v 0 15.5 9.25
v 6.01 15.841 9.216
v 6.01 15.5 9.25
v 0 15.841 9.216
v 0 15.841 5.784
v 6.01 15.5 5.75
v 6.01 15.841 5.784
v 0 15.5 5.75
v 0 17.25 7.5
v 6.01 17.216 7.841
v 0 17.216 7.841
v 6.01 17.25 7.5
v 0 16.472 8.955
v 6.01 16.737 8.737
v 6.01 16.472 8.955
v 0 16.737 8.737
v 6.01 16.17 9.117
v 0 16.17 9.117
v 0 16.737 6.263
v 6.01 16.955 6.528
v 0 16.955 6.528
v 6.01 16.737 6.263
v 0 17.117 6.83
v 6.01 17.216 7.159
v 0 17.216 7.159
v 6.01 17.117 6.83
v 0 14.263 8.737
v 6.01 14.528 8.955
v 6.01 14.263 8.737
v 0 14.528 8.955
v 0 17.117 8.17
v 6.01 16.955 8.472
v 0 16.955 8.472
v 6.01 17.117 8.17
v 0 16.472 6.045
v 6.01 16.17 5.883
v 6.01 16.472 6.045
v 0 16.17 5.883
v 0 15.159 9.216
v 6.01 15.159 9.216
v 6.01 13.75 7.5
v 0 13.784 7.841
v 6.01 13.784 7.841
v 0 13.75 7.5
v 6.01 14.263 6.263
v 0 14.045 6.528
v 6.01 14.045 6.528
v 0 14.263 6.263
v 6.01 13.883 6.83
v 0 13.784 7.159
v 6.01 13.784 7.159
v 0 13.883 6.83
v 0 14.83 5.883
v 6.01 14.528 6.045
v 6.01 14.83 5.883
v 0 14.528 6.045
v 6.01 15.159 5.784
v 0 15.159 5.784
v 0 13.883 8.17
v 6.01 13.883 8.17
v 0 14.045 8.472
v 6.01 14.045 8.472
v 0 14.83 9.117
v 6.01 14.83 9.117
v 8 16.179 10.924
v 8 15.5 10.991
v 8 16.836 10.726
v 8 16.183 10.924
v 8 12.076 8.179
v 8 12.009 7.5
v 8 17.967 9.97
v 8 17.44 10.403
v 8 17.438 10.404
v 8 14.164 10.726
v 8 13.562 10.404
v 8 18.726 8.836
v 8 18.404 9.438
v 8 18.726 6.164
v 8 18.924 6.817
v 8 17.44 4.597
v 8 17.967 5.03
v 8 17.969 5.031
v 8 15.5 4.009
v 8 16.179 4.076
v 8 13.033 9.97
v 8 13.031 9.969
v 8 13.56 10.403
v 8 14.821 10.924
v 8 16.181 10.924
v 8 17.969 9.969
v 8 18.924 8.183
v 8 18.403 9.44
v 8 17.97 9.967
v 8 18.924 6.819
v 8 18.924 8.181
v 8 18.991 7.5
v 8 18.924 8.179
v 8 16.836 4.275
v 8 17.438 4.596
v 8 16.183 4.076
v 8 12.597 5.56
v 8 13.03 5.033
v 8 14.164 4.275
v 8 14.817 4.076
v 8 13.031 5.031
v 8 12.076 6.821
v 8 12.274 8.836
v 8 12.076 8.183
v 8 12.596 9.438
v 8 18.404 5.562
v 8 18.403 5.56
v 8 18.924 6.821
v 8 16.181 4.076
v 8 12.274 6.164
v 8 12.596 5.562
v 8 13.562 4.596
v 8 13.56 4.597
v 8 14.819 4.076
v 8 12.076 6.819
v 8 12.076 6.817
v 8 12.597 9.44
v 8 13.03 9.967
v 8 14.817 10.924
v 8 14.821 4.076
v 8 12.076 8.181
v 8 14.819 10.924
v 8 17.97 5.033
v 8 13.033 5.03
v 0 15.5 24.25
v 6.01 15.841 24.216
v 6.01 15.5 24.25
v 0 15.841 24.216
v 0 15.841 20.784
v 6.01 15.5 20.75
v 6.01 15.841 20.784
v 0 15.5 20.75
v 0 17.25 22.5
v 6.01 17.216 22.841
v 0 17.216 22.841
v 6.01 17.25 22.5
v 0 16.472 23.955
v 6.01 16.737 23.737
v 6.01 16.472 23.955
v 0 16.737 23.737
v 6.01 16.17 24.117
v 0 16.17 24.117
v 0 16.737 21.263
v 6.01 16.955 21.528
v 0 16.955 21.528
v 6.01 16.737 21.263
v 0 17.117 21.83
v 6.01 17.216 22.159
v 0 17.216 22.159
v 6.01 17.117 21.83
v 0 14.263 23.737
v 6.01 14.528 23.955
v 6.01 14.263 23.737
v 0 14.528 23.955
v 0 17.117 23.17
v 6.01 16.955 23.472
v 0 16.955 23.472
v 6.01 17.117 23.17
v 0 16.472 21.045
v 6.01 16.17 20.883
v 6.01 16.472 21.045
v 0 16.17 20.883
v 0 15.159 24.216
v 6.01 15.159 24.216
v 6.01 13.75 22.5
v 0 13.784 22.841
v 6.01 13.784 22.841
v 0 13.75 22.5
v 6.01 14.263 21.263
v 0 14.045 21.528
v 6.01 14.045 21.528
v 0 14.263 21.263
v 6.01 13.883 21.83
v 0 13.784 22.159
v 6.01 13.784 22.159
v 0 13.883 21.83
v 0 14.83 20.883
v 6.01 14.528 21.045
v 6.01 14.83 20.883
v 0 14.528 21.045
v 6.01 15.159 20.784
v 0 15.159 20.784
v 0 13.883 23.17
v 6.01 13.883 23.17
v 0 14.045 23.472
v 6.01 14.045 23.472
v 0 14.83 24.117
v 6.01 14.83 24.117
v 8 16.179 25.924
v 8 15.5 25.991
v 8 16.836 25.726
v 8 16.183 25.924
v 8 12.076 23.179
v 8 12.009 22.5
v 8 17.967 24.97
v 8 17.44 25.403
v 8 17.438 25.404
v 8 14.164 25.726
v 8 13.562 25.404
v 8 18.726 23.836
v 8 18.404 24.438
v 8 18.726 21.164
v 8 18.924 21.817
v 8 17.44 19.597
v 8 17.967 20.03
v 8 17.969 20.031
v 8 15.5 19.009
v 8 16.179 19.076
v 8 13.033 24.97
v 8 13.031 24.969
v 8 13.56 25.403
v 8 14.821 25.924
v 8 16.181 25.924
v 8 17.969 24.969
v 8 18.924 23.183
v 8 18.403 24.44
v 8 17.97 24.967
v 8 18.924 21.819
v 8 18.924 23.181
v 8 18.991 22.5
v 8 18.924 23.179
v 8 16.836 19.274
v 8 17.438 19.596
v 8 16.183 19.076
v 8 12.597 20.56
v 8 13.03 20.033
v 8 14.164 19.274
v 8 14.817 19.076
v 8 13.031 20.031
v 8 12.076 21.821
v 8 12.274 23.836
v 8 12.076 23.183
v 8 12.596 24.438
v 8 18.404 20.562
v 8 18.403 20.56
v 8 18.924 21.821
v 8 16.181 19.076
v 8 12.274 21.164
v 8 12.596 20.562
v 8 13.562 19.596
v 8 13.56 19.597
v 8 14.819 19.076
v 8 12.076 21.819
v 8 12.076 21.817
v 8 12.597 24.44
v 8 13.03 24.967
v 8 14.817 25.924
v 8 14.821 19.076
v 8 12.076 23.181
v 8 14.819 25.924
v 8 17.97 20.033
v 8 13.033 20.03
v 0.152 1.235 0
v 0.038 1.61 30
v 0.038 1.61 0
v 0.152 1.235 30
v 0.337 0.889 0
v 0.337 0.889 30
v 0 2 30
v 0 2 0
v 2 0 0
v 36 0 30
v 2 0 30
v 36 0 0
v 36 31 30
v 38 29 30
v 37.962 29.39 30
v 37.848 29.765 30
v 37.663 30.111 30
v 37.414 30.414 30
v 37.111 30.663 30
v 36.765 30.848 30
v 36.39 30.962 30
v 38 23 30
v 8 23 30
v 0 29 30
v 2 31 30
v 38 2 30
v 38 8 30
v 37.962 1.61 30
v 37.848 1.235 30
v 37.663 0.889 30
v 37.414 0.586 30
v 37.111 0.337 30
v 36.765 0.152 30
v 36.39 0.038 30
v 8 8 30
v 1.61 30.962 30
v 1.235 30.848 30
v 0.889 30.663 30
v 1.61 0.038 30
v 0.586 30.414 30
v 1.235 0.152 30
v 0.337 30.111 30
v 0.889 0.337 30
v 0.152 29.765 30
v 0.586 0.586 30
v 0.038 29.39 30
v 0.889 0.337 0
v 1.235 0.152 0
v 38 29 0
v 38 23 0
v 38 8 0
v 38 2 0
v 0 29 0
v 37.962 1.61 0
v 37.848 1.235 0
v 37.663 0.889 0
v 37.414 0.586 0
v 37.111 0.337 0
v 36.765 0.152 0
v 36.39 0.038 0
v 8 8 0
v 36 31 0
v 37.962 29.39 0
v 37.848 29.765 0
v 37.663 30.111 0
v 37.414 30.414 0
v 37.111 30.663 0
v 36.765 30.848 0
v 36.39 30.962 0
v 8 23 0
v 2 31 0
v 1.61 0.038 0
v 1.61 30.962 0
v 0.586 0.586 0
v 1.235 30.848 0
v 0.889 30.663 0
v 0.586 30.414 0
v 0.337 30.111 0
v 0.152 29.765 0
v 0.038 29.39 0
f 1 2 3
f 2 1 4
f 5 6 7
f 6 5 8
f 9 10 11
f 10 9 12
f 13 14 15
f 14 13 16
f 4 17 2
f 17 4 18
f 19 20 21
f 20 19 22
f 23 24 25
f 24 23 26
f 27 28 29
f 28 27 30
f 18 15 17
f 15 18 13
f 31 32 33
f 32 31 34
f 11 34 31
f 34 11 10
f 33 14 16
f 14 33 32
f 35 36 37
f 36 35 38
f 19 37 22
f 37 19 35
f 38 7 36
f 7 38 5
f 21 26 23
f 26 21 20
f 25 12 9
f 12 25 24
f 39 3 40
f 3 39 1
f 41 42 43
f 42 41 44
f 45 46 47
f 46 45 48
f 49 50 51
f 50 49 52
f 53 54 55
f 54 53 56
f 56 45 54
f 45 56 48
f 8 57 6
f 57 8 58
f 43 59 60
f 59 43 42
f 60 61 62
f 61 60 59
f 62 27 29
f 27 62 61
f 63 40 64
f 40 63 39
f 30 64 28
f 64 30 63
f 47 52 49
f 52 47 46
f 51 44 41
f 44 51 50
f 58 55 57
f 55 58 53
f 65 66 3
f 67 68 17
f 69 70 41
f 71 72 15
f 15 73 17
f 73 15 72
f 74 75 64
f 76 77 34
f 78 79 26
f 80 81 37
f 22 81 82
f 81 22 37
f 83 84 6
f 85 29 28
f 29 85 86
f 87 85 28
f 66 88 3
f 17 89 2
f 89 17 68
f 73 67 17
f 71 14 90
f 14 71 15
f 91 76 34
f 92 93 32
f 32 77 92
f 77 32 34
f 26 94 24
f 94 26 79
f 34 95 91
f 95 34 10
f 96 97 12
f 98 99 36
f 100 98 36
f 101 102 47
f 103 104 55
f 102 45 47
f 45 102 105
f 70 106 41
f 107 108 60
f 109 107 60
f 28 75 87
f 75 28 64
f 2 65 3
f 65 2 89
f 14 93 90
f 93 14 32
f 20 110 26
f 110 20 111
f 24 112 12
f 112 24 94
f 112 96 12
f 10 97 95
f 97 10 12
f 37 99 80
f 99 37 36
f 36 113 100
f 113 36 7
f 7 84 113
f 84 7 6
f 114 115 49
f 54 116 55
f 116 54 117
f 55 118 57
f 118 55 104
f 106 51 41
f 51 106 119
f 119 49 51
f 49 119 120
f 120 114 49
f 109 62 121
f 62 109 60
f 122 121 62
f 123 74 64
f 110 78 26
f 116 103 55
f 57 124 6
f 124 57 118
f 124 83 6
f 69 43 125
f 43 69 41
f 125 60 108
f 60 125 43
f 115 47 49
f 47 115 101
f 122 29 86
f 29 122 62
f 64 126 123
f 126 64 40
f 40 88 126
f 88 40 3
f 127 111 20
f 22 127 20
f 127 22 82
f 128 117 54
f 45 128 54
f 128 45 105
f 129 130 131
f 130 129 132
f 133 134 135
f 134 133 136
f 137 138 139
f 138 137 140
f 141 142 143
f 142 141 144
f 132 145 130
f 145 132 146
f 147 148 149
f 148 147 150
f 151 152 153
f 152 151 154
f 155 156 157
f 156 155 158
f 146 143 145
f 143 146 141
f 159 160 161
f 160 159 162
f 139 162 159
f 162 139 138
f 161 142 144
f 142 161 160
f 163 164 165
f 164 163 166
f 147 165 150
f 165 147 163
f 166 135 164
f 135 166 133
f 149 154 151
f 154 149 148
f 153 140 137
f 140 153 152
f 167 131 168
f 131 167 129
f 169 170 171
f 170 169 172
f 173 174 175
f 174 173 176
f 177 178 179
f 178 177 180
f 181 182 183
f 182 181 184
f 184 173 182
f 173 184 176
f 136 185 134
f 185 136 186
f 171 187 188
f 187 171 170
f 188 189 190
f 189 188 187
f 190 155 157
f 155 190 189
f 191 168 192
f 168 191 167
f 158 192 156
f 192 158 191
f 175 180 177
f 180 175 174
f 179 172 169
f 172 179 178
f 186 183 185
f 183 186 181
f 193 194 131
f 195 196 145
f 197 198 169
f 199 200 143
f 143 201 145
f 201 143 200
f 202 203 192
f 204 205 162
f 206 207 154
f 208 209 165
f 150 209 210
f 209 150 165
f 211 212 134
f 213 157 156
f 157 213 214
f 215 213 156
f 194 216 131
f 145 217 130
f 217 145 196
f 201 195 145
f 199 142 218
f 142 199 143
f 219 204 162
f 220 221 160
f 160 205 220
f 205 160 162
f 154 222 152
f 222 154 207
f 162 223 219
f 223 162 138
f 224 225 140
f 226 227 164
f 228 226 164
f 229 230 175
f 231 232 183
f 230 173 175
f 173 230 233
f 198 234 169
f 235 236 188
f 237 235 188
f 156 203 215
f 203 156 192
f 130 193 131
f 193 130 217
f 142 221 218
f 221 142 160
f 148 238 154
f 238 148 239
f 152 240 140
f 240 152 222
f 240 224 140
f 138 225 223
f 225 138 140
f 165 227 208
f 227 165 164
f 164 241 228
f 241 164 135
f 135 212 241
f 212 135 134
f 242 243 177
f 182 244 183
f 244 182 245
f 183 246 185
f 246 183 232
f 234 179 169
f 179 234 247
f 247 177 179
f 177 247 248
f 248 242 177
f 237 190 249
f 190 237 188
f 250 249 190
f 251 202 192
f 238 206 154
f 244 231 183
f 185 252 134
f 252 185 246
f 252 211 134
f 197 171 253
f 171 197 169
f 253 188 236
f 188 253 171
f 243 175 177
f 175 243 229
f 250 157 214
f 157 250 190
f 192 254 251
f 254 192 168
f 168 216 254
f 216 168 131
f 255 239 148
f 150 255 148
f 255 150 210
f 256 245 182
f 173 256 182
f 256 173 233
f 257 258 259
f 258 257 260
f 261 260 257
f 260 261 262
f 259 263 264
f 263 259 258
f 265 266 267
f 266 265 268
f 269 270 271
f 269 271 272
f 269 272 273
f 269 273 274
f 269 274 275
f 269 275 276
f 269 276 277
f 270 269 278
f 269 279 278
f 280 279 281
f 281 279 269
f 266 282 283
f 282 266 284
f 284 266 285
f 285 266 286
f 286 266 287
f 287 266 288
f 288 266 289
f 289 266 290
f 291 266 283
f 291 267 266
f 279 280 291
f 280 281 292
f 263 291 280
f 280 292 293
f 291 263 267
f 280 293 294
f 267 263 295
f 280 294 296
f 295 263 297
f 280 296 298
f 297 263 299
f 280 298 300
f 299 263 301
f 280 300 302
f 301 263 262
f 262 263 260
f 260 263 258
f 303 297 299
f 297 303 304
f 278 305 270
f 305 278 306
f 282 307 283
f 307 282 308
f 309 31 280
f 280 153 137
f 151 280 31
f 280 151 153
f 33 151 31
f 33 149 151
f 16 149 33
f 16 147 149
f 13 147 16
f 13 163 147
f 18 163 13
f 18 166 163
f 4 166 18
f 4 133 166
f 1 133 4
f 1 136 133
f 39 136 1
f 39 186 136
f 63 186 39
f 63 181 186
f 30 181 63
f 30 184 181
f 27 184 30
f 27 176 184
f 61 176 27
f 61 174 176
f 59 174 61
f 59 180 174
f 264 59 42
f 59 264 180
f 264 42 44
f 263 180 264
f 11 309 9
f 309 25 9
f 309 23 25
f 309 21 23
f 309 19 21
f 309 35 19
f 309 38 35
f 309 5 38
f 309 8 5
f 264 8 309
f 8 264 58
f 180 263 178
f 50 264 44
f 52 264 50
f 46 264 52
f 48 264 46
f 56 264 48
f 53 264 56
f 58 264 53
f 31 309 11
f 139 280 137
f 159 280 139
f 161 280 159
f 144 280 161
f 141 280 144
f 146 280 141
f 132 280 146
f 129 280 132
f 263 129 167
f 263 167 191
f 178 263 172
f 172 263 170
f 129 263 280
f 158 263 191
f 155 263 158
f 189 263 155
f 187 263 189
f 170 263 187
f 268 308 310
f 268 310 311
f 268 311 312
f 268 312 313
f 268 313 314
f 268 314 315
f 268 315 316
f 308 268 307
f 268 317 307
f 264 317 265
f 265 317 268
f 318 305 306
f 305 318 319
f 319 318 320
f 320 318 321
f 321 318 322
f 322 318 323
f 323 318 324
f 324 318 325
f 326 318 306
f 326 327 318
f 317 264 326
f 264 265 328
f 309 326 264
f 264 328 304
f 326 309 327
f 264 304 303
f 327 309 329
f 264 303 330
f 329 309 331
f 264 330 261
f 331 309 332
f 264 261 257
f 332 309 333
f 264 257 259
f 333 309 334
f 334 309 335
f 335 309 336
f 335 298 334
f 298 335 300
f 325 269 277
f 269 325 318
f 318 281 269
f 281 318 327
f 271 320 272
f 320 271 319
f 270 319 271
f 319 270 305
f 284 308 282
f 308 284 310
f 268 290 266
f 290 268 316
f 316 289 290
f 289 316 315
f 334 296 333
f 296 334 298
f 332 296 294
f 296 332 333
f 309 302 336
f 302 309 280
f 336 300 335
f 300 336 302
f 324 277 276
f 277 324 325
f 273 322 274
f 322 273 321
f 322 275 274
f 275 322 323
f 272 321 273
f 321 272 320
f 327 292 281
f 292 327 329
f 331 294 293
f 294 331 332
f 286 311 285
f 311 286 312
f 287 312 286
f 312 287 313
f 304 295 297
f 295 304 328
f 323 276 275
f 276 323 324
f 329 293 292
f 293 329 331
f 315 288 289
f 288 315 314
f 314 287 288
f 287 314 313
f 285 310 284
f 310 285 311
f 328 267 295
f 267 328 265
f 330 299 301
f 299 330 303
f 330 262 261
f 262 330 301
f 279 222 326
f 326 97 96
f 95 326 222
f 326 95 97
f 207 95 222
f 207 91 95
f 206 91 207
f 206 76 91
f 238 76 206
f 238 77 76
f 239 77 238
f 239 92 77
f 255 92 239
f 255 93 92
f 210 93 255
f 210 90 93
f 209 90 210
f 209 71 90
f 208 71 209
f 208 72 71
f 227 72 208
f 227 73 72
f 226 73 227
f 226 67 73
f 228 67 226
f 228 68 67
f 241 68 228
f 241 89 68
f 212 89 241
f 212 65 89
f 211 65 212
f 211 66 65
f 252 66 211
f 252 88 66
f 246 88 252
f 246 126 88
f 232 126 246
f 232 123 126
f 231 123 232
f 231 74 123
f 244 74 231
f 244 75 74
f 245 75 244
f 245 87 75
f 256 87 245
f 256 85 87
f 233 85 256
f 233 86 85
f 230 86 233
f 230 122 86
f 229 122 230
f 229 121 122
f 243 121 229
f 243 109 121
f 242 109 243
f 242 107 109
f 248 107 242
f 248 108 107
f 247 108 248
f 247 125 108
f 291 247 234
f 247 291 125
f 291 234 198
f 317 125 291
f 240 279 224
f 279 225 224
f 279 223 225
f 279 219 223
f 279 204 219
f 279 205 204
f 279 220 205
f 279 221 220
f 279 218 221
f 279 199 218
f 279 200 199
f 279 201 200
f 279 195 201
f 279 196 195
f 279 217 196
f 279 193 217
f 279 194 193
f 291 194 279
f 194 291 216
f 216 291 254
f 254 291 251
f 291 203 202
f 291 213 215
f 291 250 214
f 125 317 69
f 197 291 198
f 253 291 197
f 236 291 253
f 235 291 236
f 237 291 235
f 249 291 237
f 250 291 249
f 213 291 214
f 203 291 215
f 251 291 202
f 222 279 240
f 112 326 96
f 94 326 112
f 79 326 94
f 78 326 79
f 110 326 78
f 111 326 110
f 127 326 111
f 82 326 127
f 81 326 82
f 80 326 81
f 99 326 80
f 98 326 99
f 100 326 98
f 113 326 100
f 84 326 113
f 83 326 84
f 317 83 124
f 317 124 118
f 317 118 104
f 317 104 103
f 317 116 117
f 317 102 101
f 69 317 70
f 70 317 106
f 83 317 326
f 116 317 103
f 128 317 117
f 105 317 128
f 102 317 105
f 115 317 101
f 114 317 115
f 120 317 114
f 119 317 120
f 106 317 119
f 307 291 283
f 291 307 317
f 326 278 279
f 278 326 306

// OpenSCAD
// file: rounded_box.scad
/**
 * Small "library" for creating boxes with rounded edges.
 *
 * Hendrik Busch, 2017-18 (https://github.com/hmbusch)
 *
 */
 
/**
 * Creates a 2D-shape of a box with the given dimensions and rounded edges. 
 * Be sure to increase $fn for nicer edges.
 *
 * @param width
 *          the desired width of the box (default is 10mm)
 * @param depth
 *          the desired depth of the box (default is 10mm)
 * @param height
 *          the desired height of the box (default is 10mm)
 * @param edge_radius
 *          the radius of all the edges on the xy-plane (default is 2mm)
 */  
module box_with_round_edges_2d(width = 10, depth = 10, edge_radius = 2) {
    ed = edge_radius * 2;
    translate([edge_radius, edge_radius, 0]) hull() {
        circle(d = ed);
        translate([width - ed, 0, 0]) circle(d = ed);
        translate([0, depth - ed, 0]) circle(d = ed);
        translate([width - ed, depth - ed, 0]) circle(d = ed);    
    }
}
 
/**
 * Call to create a box with rounded edges (edges will be round on one plane only).
 * Be sure to increase $fn for nicer edges.
 * 
 * @param width
 *          the desired width of the box (default is 10mm)
 * @param depth
 *          the desired depth of the box (default is 10mm)
 * @param height
 *          the desired height of the box (default is 10mm)
 * @param edge_radius
 *          the radius of all the edges on the xy-plane (default is 2mm)
 *
 */
module box_with_round_edges_3d(width = 10, depth = 10, height = 10, edge_radius = 2) {
	linear_extrude(height = height) {
		box_with_round_edges_2d(width, depth, edge_radius);
	}
}

/**
 * Call to create a box with rounded edges (edges will be round on one plane only).
 * Be sure to increase $fn for nicer edges. This module has inputs that resemble
 * those of cube() so that it can act as a drop-in replacement.
 * 
 * @param dimensions
 *          3-value-array with x, y and z dimensions (default is 10x10x10mm).
 * @param edge_radius
 *          the radius of all the edges on the xy-plane (default is 2mm)
 *
 */
module box_with_round_edges_3d(dimensions = [10, 10, 10], edge_radius = 2) {
	linear_extrude(height = dimensions[2]) {
		box_with_round_edges_2d(dimensions[0], dimensions[1], edge_radius);
	}
}
// main file
use <../../Various/SCAD/rounded_box.scad>

$fn = 32;

box_ledge_width = 15;
box_overhang = 30;
holder_thickness = 8;

f = 0.01;
df = f * 2;

module screwhole() {
    rotate([0, -90, 0]) {
        cylinder(d = 3.5, h = 2 * holder_thickness);
        cylinder(d1 = 7, d2 = 3.5, h = 2);
    }
}

module holder() {
    difference() {
        // main body
        box_with_round_edges_3d([holder_thickness + box_overhang, 2 * holder_thickness + box_ledge_width, box_overhang]);
        translate([holder_thickness, holder_thickness, -f])
            cube([box_overhang + f, box_ledge_width, box_overhang + df]);
    translate([holder_thickness + f, (2 * holder_thickness + box_ledge_width)/2, box_overhang/4])
        screwhole();
    translate([holder_thickness + f, (2 * holder_thickness + box_ledge_width)/2, 3 * box_overhang/4])
        screwhole();        
    }
}

holder();
